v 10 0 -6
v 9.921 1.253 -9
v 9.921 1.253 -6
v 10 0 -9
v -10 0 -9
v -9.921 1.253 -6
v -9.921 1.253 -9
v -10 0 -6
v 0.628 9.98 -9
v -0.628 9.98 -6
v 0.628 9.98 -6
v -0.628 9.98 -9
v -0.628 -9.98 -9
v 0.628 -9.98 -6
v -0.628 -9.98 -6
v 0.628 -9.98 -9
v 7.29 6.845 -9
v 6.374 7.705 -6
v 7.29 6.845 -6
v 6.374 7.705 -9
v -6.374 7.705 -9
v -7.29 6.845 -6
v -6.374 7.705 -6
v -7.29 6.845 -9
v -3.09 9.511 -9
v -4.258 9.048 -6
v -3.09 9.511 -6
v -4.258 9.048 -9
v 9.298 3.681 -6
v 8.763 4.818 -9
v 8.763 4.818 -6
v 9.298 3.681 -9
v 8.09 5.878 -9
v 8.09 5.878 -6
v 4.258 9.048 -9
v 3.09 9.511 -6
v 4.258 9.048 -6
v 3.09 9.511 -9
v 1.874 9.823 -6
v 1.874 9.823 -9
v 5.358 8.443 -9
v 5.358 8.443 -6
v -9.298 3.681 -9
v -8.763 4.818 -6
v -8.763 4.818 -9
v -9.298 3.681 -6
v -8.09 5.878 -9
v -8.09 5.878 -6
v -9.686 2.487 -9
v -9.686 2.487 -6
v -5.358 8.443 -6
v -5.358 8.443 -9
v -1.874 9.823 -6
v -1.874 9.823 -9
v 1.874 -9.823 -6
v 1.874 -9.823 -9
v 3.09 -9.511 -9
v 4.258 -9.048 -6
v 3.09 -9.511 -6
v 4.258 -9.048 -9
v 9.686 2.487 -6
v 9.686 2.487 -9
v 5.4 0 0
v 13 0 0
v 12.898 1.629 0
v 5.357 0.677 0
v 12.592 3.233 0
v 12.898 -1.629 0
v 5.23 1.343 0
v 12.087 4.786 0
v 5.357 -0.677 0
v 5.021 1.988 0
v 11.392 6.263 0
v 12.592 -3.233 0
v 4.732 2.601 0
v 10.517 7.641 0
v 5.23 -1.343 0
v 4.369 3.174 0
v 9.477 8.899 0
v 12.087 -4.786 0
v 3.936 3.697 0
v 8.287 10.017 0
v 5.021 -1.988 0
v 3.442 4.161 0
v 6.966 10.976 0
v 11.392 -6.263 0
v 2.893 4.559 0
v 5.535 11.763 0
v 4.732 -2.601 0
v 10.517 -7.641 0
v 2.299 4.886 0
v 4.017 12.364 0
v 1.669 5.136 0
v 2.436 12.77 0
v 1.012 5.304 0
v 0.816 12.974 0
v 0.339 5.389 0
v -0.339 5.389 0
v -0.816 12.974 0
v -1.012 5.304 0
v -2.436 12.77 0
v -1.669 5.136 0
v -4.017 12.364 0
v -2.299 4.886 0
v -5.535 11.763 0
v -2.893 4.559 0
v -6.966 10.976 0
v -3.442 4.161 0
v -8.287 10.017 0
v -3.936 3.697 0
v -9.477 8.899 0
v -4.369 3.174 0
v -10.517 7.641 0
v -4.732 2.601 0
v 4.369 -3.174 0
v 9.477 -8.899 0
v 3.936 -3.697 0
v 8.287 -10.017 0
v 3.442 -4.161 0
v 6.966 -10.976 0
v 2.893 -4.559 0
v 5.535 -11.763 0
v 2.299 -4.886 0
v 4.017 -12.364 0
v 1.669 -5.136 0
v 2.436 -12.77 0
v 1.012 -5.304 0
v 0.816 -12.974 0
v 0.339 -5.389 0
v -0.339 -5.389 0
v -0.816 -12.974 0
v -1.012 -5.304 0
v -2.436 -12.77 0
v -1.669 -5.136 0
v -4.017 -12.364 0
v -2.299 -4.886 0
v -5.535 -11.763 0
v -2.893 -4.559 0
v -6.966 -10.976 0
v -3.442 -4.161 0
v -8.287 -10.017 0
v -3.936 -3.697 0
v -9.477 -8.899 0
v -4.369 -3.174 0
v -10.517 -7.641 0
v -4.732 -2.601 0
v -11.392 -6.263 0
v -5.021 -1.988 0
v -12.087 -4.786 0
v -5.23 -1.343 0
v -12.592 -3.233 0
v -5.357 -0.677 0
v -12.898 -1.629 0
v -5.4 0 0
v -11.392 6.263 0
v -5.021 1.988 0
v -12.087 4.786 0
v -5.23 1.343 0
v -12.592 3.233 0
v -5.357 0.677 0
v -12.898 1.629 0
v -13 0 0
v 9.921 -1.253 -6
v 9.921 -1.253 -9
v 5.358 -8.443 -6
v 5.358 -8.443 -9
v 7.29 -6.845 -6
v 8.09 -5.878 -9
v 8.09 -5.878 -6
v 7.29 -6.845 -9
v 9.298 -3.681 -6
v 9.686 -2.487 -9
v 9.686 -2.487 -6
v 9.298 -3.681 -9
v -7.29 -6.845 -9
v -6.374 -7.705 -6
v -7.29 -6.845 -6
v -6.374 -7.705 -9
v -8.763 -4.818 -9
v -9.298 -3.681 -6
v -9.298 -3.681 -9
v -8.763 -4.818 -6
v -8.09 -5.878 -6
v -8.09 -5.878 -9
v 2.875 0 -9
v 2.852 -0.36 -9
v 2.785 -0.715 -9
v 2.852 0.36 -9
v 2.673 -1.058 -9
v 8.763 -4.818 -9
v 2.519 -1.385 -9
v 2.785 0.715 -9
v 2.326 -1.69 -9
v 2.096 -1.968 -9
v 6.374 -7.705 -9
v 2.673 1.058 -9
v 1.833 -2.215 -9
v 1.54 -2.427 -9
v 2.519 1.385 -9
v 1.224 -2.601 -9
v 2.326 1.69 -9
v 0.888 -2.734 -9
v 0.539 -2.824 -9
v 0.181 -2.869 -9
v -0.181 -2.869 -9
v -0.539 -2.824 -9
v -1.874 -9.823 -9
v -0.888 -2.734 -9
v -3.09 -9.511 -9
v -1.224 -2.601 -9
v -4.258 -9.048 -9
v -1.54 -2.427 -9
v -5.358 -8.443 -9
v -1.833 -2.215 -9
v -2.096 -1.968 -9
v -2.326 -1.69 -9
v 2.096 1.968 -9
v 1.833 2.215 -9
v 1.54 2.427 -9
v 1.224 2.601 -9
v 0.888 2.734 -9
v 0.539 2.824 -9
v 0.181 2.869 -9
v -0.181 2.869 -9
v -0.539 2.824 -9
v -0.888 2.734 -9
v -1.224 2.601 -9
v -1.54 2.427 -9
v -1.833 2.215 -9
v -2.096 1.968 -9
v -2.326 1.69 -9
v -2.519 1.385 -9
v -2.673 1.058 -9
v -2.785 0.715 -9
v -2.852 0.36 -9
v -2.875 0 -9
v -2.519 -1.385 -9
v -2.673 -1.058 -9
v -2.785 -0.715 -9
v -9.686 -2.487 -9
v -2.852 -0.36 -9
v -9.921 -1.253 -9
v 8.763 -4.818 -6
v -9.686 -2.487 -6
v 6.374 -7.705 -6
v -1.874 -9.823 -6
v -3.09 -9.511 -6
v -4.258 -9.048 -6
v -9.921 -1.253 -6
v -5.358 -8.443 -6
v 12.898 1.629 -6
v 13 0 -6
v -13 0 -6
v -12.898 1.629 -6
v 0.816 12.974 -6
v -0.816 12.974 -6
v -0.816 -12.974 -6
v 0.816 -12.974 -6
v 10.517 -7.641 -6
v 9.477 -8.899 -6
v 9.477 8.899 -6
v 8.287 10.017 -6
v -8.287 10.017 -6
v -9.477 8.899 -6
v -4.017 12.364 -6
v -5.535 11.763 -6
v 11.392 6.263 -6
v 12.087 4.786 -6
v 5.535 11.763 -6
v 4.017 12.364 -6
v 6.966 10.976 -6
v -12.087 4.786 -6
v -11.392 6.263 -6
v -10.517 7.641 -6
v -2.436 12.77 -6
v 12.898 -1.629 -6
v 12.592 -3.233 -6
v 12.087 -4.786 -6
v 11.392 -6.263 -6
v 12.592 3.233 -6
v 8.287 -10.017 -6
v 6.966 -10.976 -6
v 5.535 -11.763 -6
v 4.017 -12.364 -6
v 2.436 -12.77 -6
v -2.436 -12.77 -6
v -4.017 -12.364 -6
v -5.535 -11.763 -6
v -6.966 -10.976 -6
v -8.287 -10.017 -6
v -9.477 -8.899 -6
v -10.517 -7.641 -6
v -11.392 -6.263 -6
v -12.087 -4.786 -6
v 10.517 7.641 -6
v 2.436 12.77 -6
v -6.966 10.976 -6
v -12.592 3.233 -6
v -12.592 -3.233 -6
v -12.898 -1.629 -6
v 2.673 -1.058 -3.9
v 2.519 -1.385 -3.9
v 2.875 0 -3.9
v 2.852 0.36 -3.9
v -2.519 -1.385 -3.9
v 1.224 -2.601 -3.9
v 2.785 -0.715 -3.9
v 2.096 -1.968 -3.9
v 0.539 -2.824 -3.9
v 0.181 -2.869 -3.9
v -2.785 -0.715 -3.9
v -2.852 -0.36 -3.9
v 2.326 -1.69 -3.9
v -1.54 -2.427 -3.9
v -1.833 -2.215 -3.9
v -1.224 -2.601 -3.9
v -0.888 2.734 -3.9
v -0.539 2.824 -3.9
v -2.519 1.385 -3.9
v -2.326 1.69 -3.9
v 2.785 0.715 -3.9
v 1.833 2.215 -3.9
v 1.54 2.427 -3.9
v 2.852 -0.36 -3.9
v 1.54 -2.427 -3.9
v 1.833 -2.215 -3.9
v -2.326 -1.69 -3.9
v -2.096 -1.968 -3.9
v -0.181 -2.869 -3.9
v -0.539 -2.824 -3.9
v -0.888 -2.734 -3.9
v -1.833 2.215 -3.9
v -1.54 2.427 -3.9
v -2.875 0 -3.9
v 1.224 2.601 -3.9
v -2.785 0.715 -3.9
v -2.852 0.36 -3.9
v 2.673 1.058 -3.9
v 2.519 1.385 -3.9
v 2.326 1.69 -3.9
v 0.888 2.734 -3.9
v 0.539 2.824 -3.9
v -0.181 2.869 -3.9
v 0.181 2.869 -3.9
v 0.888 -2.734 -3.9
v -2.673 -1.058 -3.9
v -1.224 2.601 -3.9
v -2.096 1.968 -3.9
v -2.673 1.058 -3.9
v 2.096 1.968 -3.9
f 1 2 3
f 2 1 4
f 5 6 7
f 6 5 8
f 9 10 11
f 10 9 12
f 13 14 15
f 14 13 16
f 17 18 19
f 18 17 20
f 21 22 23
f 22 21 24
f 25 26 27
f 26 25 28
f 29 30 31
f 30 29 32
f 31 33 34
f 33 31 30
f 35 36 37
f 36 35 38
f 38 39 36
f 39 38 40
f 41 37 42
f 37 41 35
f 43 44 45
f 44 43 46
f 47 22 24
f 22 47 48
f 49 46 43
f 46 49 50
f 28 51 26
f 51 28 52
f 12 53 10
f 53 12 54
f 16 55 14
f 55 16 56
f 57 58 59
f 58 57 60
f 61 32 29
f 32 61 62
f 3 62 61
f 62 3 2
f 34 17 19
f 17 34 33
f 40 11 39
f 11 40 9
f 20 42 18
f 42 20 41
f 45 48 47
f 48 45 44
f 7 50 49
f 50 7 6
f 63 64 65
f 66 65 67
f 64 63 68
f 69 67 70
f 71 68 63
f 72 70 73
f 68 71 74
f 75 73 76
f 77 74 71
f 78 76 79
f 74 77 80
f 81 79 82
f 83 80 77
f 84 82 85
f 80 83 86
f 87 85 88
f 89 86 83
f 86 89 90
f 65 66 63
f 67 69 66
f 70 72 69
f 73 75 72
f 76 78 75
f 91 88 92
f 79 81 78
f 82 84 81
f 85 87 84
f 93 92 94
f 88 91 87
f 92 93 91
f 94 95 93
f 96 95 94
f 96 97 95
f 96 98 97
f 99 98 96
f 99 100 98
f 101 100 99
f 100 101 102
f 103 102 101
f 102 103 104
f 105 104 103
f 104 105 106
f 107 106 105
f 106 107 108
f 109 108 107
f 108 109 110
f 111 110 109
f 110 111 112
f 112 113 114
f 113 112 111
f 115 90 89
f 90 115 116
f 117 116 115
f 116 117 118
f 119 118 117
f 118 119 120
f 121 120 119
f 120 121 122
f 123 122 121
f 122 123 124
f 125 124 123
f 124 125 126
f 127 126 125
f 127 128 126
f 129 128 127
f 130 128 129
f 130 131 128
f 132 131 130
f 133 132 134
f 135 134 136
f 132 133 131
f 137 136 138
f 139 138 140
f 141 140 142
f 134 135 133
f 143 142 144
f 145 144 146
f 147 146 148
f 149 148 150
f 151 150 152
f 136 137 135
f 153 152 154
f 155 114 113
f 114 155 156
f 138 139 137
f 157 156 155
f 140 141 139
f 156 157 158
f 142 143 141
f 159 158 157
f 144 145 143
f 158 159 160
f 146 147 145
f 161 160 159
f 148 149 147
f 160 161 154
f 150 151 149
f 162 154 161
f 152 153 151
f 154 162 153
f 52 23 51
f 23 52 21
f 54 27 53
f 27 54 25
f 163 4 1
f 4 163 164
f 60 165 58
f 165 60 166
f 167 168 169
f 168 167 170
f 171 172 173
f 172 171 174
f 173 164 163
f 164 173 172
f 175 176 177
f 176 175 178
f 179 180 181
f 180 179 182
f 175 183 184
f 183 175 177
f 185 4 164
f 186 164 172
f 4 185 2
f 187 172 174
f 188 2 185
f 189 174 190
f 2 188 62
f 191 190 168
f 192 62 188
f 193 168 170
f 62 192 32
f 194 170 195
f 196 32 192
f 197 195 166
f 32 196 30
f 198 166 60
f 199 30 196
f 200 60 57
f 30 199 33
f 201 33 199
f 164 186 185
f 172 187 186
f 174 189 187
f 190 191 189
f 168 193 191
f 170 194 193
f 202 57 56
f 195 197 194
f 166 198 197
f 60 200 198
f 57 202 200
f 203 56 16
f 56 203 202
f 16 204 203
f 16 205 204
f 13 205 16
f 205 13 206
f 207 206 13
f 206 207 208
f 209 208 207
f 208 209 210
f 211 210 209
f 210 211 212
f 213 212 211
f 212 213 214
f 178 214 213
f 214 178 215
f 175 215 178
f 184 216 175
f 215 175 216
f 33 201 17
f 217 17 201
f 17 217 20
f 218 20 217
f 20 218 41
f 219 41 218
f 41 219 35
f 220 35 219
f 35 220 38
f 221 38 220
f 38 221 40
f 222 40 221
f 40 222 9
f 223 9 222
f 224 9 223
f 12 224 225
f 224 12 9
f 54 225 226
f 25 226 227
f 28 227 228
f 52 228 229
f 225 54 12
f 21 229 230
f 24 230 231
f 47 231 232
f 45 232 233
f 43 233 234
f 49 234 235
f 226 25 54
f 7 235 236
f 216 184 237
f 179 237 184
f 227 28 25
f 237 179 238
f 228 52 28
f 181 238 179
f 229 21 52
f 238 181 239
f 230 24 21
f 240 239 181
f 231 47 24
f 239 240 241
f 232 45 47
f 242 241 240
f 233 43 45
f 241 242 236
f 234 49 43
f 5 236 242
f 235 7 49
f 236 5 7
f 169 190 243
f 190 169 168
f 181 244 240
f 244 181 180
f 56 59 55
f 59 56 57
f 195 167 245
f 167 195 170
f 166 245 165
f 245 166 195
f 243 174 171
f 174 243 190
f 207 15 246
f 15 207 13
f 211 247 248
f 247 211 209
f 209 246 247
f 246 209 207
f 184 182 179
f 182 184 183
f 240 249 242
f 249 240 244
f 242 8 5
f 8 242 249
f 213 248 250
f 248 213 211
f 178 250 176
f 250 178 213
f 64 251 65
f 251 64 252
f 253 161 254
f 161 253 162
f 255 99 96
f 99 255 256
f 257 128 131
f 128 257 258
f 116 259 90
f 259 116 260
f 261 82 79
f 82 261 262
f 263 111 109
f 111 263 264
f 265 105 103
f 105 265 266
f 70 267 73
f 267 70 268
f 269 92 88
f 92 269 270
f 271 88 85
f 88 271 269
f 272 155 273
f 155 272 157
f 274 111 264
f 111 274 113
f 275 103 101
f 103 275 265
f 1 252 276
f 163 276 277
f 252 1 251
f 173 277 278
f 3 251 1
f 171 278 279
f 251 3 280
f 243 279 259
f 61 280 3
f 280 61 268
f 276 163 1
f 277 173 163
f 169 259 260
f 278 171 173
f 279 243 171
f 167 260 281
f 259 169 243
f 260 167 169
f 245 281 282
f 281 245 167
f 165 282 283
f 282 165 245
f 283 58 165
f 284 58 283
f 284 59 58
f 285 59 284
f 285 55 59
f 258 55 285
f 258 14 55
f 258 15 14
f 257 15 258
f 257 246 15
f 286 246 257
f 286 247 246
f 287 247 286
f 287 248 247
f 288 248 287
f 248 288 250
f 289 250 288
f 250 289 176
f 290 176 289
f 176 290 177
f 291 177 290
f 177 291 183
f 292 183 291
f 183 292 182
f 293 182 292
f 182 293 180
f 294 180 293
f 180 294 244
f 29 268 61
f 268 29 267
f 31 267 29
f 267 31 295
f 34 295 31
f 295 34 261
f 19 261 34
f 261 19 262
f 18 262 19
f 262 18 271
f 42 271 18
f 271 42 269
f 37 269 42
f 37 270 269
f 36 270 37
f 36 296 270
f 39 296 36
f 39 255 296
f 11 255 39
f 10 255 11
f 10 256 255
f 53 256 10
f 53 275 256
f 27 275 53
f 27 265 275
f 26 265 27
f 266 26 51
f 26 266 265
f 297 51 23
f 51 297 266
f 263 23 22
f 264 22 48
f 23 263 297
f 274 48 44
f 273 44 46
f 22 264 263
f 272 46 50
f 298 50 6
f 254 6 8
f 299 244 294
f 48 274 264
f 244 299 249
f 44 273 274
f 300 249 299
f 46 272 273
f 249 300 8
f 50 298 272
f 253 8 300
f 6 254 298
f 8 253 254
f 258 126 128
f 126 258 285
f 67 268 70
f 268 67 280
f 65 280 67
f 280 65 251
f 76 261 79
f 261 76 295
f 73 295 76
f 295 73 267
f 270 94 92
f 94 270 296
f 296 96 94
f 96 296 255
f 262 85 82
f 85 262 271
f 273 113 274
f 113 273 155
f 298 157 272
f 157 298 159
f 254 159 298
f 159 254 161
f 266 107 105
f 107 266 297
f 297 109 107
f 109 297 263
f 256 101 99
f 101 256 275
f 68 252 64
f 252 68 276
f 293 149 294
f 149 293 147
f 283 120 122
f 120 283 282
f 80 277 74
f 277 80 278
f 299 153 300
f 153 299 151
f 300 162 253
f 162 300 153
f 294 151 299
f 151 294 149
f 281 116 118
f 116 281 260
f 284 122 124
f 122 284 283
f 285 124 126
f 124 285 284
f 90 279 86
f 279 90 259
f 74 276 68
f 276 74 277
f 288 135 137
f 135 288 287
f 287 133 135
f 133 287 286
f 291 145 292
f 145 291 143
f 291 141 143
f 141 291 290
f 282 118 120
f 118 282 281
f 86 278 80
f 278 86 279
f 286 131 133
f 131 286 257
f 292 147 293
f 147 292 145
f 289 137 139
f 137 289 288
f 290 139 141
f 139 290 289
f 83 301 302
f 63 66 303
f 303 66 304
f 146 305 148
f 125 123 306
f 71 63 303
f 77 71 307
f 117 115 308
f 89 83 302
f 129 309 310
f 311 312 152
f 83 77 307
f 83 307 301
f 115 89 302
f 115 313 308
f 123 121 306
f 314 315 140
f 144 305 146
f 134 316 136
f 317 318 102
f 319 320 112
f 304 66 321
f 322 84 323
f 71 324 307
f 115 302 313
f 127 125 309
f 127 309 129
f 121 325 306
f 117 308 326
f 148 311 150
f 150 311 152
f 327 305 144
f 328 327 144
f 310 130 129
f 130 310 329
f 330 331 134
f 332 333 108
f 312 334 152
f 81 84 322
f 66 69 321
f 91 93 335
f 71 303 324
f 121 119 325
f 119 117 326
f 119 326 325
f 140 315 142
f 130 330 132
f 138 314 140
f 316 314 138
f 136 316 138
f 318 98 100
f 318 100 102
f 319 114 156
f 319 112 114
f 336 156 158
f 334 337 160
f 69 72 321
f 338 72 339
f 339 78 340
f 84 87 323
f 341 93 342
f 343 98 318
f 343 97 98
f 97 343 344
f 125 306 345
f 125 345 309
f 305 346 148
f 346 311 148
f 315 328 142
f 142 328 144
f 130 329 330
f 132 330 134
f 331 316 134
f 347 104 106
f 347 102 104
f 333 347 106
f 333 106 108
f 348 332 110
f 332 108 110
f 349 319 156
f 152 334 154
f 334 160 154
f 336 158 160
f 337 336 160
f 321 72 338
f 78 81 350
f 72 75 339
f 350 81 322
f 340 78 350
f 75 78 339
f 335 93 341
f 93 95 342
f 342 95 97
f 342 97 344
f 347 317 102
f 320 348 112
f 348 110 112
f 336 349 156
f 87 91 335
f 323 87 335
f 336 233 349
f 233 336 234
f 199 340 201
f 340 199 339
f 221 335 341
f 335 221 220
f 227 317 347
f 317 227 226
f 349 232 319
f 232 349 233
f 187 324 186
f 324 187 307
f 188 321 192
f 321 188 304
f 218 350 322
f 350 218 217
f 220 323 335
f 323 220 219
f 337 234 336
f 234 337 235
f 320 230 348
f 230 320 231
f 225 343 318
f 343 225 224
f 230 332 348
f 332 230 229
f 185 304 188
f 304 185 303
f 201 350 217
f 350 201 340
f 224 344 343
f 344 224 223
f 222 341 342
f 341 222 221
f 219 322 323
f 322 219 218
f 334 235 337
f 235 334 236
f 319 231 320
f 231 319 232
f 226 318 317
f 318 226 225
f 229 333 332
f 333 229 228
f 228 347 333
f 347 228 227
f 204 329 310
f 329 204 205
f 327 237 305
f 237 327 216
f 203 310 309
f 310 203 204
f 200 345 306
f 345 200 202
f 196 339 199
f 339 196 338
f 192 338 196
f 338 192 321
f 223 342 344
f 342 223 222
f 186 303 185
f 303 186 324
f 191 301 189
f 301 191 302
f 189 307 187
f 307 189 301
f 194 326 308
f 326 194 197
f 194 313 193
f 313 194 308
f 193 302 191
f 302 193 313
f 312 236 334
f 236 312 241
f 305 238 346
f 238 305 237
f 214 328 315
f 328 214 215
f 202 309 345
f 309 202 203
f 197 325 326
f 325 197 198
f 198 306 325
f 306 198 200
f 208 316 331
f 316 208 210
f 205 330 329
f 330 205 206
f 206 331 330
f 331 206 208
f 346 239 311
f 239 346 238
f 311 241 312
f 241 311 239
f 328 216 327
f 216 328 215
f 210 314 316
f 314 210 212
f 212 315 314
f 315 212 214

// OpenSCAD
$fn = 50;


difference() {
	union() {
		translate(v = [0, 0, -9.0000000000]) {
			cylinder(h = 9, r = 10.0000000000);
		}
		translate(v = [0, 0, -6.0000000000]) {
			cylinder(h = 6, r = 13.0000000000);
		}
	}
	union() {
		translate(v = [0, 0, 0]) {
			rotate(a = [0, 0, 0]) {
				difference() {
					union() {
						#translate(v = [0, 0, -9.0000000000]) {
							cylinder(h = 9, r = 2.6000000000);
						}
						#translate(v = [0, 0, -3.9000000000]) {
							cylinder(h = 3.9000000000, r1 = 2.8750000000, r2 = 5.4000000000);
						}
						#translate(v = [0, 0, -9.0000000000]) {
							cylinder(h = 9, r = 2.8750000000);
						}
						#translate(v = [0, 0, -9.0000000000]) {
							cylinder(h = 9, r = 2.6000000000);
						}
					}
					union();
				}
			}
		}
	}
}
